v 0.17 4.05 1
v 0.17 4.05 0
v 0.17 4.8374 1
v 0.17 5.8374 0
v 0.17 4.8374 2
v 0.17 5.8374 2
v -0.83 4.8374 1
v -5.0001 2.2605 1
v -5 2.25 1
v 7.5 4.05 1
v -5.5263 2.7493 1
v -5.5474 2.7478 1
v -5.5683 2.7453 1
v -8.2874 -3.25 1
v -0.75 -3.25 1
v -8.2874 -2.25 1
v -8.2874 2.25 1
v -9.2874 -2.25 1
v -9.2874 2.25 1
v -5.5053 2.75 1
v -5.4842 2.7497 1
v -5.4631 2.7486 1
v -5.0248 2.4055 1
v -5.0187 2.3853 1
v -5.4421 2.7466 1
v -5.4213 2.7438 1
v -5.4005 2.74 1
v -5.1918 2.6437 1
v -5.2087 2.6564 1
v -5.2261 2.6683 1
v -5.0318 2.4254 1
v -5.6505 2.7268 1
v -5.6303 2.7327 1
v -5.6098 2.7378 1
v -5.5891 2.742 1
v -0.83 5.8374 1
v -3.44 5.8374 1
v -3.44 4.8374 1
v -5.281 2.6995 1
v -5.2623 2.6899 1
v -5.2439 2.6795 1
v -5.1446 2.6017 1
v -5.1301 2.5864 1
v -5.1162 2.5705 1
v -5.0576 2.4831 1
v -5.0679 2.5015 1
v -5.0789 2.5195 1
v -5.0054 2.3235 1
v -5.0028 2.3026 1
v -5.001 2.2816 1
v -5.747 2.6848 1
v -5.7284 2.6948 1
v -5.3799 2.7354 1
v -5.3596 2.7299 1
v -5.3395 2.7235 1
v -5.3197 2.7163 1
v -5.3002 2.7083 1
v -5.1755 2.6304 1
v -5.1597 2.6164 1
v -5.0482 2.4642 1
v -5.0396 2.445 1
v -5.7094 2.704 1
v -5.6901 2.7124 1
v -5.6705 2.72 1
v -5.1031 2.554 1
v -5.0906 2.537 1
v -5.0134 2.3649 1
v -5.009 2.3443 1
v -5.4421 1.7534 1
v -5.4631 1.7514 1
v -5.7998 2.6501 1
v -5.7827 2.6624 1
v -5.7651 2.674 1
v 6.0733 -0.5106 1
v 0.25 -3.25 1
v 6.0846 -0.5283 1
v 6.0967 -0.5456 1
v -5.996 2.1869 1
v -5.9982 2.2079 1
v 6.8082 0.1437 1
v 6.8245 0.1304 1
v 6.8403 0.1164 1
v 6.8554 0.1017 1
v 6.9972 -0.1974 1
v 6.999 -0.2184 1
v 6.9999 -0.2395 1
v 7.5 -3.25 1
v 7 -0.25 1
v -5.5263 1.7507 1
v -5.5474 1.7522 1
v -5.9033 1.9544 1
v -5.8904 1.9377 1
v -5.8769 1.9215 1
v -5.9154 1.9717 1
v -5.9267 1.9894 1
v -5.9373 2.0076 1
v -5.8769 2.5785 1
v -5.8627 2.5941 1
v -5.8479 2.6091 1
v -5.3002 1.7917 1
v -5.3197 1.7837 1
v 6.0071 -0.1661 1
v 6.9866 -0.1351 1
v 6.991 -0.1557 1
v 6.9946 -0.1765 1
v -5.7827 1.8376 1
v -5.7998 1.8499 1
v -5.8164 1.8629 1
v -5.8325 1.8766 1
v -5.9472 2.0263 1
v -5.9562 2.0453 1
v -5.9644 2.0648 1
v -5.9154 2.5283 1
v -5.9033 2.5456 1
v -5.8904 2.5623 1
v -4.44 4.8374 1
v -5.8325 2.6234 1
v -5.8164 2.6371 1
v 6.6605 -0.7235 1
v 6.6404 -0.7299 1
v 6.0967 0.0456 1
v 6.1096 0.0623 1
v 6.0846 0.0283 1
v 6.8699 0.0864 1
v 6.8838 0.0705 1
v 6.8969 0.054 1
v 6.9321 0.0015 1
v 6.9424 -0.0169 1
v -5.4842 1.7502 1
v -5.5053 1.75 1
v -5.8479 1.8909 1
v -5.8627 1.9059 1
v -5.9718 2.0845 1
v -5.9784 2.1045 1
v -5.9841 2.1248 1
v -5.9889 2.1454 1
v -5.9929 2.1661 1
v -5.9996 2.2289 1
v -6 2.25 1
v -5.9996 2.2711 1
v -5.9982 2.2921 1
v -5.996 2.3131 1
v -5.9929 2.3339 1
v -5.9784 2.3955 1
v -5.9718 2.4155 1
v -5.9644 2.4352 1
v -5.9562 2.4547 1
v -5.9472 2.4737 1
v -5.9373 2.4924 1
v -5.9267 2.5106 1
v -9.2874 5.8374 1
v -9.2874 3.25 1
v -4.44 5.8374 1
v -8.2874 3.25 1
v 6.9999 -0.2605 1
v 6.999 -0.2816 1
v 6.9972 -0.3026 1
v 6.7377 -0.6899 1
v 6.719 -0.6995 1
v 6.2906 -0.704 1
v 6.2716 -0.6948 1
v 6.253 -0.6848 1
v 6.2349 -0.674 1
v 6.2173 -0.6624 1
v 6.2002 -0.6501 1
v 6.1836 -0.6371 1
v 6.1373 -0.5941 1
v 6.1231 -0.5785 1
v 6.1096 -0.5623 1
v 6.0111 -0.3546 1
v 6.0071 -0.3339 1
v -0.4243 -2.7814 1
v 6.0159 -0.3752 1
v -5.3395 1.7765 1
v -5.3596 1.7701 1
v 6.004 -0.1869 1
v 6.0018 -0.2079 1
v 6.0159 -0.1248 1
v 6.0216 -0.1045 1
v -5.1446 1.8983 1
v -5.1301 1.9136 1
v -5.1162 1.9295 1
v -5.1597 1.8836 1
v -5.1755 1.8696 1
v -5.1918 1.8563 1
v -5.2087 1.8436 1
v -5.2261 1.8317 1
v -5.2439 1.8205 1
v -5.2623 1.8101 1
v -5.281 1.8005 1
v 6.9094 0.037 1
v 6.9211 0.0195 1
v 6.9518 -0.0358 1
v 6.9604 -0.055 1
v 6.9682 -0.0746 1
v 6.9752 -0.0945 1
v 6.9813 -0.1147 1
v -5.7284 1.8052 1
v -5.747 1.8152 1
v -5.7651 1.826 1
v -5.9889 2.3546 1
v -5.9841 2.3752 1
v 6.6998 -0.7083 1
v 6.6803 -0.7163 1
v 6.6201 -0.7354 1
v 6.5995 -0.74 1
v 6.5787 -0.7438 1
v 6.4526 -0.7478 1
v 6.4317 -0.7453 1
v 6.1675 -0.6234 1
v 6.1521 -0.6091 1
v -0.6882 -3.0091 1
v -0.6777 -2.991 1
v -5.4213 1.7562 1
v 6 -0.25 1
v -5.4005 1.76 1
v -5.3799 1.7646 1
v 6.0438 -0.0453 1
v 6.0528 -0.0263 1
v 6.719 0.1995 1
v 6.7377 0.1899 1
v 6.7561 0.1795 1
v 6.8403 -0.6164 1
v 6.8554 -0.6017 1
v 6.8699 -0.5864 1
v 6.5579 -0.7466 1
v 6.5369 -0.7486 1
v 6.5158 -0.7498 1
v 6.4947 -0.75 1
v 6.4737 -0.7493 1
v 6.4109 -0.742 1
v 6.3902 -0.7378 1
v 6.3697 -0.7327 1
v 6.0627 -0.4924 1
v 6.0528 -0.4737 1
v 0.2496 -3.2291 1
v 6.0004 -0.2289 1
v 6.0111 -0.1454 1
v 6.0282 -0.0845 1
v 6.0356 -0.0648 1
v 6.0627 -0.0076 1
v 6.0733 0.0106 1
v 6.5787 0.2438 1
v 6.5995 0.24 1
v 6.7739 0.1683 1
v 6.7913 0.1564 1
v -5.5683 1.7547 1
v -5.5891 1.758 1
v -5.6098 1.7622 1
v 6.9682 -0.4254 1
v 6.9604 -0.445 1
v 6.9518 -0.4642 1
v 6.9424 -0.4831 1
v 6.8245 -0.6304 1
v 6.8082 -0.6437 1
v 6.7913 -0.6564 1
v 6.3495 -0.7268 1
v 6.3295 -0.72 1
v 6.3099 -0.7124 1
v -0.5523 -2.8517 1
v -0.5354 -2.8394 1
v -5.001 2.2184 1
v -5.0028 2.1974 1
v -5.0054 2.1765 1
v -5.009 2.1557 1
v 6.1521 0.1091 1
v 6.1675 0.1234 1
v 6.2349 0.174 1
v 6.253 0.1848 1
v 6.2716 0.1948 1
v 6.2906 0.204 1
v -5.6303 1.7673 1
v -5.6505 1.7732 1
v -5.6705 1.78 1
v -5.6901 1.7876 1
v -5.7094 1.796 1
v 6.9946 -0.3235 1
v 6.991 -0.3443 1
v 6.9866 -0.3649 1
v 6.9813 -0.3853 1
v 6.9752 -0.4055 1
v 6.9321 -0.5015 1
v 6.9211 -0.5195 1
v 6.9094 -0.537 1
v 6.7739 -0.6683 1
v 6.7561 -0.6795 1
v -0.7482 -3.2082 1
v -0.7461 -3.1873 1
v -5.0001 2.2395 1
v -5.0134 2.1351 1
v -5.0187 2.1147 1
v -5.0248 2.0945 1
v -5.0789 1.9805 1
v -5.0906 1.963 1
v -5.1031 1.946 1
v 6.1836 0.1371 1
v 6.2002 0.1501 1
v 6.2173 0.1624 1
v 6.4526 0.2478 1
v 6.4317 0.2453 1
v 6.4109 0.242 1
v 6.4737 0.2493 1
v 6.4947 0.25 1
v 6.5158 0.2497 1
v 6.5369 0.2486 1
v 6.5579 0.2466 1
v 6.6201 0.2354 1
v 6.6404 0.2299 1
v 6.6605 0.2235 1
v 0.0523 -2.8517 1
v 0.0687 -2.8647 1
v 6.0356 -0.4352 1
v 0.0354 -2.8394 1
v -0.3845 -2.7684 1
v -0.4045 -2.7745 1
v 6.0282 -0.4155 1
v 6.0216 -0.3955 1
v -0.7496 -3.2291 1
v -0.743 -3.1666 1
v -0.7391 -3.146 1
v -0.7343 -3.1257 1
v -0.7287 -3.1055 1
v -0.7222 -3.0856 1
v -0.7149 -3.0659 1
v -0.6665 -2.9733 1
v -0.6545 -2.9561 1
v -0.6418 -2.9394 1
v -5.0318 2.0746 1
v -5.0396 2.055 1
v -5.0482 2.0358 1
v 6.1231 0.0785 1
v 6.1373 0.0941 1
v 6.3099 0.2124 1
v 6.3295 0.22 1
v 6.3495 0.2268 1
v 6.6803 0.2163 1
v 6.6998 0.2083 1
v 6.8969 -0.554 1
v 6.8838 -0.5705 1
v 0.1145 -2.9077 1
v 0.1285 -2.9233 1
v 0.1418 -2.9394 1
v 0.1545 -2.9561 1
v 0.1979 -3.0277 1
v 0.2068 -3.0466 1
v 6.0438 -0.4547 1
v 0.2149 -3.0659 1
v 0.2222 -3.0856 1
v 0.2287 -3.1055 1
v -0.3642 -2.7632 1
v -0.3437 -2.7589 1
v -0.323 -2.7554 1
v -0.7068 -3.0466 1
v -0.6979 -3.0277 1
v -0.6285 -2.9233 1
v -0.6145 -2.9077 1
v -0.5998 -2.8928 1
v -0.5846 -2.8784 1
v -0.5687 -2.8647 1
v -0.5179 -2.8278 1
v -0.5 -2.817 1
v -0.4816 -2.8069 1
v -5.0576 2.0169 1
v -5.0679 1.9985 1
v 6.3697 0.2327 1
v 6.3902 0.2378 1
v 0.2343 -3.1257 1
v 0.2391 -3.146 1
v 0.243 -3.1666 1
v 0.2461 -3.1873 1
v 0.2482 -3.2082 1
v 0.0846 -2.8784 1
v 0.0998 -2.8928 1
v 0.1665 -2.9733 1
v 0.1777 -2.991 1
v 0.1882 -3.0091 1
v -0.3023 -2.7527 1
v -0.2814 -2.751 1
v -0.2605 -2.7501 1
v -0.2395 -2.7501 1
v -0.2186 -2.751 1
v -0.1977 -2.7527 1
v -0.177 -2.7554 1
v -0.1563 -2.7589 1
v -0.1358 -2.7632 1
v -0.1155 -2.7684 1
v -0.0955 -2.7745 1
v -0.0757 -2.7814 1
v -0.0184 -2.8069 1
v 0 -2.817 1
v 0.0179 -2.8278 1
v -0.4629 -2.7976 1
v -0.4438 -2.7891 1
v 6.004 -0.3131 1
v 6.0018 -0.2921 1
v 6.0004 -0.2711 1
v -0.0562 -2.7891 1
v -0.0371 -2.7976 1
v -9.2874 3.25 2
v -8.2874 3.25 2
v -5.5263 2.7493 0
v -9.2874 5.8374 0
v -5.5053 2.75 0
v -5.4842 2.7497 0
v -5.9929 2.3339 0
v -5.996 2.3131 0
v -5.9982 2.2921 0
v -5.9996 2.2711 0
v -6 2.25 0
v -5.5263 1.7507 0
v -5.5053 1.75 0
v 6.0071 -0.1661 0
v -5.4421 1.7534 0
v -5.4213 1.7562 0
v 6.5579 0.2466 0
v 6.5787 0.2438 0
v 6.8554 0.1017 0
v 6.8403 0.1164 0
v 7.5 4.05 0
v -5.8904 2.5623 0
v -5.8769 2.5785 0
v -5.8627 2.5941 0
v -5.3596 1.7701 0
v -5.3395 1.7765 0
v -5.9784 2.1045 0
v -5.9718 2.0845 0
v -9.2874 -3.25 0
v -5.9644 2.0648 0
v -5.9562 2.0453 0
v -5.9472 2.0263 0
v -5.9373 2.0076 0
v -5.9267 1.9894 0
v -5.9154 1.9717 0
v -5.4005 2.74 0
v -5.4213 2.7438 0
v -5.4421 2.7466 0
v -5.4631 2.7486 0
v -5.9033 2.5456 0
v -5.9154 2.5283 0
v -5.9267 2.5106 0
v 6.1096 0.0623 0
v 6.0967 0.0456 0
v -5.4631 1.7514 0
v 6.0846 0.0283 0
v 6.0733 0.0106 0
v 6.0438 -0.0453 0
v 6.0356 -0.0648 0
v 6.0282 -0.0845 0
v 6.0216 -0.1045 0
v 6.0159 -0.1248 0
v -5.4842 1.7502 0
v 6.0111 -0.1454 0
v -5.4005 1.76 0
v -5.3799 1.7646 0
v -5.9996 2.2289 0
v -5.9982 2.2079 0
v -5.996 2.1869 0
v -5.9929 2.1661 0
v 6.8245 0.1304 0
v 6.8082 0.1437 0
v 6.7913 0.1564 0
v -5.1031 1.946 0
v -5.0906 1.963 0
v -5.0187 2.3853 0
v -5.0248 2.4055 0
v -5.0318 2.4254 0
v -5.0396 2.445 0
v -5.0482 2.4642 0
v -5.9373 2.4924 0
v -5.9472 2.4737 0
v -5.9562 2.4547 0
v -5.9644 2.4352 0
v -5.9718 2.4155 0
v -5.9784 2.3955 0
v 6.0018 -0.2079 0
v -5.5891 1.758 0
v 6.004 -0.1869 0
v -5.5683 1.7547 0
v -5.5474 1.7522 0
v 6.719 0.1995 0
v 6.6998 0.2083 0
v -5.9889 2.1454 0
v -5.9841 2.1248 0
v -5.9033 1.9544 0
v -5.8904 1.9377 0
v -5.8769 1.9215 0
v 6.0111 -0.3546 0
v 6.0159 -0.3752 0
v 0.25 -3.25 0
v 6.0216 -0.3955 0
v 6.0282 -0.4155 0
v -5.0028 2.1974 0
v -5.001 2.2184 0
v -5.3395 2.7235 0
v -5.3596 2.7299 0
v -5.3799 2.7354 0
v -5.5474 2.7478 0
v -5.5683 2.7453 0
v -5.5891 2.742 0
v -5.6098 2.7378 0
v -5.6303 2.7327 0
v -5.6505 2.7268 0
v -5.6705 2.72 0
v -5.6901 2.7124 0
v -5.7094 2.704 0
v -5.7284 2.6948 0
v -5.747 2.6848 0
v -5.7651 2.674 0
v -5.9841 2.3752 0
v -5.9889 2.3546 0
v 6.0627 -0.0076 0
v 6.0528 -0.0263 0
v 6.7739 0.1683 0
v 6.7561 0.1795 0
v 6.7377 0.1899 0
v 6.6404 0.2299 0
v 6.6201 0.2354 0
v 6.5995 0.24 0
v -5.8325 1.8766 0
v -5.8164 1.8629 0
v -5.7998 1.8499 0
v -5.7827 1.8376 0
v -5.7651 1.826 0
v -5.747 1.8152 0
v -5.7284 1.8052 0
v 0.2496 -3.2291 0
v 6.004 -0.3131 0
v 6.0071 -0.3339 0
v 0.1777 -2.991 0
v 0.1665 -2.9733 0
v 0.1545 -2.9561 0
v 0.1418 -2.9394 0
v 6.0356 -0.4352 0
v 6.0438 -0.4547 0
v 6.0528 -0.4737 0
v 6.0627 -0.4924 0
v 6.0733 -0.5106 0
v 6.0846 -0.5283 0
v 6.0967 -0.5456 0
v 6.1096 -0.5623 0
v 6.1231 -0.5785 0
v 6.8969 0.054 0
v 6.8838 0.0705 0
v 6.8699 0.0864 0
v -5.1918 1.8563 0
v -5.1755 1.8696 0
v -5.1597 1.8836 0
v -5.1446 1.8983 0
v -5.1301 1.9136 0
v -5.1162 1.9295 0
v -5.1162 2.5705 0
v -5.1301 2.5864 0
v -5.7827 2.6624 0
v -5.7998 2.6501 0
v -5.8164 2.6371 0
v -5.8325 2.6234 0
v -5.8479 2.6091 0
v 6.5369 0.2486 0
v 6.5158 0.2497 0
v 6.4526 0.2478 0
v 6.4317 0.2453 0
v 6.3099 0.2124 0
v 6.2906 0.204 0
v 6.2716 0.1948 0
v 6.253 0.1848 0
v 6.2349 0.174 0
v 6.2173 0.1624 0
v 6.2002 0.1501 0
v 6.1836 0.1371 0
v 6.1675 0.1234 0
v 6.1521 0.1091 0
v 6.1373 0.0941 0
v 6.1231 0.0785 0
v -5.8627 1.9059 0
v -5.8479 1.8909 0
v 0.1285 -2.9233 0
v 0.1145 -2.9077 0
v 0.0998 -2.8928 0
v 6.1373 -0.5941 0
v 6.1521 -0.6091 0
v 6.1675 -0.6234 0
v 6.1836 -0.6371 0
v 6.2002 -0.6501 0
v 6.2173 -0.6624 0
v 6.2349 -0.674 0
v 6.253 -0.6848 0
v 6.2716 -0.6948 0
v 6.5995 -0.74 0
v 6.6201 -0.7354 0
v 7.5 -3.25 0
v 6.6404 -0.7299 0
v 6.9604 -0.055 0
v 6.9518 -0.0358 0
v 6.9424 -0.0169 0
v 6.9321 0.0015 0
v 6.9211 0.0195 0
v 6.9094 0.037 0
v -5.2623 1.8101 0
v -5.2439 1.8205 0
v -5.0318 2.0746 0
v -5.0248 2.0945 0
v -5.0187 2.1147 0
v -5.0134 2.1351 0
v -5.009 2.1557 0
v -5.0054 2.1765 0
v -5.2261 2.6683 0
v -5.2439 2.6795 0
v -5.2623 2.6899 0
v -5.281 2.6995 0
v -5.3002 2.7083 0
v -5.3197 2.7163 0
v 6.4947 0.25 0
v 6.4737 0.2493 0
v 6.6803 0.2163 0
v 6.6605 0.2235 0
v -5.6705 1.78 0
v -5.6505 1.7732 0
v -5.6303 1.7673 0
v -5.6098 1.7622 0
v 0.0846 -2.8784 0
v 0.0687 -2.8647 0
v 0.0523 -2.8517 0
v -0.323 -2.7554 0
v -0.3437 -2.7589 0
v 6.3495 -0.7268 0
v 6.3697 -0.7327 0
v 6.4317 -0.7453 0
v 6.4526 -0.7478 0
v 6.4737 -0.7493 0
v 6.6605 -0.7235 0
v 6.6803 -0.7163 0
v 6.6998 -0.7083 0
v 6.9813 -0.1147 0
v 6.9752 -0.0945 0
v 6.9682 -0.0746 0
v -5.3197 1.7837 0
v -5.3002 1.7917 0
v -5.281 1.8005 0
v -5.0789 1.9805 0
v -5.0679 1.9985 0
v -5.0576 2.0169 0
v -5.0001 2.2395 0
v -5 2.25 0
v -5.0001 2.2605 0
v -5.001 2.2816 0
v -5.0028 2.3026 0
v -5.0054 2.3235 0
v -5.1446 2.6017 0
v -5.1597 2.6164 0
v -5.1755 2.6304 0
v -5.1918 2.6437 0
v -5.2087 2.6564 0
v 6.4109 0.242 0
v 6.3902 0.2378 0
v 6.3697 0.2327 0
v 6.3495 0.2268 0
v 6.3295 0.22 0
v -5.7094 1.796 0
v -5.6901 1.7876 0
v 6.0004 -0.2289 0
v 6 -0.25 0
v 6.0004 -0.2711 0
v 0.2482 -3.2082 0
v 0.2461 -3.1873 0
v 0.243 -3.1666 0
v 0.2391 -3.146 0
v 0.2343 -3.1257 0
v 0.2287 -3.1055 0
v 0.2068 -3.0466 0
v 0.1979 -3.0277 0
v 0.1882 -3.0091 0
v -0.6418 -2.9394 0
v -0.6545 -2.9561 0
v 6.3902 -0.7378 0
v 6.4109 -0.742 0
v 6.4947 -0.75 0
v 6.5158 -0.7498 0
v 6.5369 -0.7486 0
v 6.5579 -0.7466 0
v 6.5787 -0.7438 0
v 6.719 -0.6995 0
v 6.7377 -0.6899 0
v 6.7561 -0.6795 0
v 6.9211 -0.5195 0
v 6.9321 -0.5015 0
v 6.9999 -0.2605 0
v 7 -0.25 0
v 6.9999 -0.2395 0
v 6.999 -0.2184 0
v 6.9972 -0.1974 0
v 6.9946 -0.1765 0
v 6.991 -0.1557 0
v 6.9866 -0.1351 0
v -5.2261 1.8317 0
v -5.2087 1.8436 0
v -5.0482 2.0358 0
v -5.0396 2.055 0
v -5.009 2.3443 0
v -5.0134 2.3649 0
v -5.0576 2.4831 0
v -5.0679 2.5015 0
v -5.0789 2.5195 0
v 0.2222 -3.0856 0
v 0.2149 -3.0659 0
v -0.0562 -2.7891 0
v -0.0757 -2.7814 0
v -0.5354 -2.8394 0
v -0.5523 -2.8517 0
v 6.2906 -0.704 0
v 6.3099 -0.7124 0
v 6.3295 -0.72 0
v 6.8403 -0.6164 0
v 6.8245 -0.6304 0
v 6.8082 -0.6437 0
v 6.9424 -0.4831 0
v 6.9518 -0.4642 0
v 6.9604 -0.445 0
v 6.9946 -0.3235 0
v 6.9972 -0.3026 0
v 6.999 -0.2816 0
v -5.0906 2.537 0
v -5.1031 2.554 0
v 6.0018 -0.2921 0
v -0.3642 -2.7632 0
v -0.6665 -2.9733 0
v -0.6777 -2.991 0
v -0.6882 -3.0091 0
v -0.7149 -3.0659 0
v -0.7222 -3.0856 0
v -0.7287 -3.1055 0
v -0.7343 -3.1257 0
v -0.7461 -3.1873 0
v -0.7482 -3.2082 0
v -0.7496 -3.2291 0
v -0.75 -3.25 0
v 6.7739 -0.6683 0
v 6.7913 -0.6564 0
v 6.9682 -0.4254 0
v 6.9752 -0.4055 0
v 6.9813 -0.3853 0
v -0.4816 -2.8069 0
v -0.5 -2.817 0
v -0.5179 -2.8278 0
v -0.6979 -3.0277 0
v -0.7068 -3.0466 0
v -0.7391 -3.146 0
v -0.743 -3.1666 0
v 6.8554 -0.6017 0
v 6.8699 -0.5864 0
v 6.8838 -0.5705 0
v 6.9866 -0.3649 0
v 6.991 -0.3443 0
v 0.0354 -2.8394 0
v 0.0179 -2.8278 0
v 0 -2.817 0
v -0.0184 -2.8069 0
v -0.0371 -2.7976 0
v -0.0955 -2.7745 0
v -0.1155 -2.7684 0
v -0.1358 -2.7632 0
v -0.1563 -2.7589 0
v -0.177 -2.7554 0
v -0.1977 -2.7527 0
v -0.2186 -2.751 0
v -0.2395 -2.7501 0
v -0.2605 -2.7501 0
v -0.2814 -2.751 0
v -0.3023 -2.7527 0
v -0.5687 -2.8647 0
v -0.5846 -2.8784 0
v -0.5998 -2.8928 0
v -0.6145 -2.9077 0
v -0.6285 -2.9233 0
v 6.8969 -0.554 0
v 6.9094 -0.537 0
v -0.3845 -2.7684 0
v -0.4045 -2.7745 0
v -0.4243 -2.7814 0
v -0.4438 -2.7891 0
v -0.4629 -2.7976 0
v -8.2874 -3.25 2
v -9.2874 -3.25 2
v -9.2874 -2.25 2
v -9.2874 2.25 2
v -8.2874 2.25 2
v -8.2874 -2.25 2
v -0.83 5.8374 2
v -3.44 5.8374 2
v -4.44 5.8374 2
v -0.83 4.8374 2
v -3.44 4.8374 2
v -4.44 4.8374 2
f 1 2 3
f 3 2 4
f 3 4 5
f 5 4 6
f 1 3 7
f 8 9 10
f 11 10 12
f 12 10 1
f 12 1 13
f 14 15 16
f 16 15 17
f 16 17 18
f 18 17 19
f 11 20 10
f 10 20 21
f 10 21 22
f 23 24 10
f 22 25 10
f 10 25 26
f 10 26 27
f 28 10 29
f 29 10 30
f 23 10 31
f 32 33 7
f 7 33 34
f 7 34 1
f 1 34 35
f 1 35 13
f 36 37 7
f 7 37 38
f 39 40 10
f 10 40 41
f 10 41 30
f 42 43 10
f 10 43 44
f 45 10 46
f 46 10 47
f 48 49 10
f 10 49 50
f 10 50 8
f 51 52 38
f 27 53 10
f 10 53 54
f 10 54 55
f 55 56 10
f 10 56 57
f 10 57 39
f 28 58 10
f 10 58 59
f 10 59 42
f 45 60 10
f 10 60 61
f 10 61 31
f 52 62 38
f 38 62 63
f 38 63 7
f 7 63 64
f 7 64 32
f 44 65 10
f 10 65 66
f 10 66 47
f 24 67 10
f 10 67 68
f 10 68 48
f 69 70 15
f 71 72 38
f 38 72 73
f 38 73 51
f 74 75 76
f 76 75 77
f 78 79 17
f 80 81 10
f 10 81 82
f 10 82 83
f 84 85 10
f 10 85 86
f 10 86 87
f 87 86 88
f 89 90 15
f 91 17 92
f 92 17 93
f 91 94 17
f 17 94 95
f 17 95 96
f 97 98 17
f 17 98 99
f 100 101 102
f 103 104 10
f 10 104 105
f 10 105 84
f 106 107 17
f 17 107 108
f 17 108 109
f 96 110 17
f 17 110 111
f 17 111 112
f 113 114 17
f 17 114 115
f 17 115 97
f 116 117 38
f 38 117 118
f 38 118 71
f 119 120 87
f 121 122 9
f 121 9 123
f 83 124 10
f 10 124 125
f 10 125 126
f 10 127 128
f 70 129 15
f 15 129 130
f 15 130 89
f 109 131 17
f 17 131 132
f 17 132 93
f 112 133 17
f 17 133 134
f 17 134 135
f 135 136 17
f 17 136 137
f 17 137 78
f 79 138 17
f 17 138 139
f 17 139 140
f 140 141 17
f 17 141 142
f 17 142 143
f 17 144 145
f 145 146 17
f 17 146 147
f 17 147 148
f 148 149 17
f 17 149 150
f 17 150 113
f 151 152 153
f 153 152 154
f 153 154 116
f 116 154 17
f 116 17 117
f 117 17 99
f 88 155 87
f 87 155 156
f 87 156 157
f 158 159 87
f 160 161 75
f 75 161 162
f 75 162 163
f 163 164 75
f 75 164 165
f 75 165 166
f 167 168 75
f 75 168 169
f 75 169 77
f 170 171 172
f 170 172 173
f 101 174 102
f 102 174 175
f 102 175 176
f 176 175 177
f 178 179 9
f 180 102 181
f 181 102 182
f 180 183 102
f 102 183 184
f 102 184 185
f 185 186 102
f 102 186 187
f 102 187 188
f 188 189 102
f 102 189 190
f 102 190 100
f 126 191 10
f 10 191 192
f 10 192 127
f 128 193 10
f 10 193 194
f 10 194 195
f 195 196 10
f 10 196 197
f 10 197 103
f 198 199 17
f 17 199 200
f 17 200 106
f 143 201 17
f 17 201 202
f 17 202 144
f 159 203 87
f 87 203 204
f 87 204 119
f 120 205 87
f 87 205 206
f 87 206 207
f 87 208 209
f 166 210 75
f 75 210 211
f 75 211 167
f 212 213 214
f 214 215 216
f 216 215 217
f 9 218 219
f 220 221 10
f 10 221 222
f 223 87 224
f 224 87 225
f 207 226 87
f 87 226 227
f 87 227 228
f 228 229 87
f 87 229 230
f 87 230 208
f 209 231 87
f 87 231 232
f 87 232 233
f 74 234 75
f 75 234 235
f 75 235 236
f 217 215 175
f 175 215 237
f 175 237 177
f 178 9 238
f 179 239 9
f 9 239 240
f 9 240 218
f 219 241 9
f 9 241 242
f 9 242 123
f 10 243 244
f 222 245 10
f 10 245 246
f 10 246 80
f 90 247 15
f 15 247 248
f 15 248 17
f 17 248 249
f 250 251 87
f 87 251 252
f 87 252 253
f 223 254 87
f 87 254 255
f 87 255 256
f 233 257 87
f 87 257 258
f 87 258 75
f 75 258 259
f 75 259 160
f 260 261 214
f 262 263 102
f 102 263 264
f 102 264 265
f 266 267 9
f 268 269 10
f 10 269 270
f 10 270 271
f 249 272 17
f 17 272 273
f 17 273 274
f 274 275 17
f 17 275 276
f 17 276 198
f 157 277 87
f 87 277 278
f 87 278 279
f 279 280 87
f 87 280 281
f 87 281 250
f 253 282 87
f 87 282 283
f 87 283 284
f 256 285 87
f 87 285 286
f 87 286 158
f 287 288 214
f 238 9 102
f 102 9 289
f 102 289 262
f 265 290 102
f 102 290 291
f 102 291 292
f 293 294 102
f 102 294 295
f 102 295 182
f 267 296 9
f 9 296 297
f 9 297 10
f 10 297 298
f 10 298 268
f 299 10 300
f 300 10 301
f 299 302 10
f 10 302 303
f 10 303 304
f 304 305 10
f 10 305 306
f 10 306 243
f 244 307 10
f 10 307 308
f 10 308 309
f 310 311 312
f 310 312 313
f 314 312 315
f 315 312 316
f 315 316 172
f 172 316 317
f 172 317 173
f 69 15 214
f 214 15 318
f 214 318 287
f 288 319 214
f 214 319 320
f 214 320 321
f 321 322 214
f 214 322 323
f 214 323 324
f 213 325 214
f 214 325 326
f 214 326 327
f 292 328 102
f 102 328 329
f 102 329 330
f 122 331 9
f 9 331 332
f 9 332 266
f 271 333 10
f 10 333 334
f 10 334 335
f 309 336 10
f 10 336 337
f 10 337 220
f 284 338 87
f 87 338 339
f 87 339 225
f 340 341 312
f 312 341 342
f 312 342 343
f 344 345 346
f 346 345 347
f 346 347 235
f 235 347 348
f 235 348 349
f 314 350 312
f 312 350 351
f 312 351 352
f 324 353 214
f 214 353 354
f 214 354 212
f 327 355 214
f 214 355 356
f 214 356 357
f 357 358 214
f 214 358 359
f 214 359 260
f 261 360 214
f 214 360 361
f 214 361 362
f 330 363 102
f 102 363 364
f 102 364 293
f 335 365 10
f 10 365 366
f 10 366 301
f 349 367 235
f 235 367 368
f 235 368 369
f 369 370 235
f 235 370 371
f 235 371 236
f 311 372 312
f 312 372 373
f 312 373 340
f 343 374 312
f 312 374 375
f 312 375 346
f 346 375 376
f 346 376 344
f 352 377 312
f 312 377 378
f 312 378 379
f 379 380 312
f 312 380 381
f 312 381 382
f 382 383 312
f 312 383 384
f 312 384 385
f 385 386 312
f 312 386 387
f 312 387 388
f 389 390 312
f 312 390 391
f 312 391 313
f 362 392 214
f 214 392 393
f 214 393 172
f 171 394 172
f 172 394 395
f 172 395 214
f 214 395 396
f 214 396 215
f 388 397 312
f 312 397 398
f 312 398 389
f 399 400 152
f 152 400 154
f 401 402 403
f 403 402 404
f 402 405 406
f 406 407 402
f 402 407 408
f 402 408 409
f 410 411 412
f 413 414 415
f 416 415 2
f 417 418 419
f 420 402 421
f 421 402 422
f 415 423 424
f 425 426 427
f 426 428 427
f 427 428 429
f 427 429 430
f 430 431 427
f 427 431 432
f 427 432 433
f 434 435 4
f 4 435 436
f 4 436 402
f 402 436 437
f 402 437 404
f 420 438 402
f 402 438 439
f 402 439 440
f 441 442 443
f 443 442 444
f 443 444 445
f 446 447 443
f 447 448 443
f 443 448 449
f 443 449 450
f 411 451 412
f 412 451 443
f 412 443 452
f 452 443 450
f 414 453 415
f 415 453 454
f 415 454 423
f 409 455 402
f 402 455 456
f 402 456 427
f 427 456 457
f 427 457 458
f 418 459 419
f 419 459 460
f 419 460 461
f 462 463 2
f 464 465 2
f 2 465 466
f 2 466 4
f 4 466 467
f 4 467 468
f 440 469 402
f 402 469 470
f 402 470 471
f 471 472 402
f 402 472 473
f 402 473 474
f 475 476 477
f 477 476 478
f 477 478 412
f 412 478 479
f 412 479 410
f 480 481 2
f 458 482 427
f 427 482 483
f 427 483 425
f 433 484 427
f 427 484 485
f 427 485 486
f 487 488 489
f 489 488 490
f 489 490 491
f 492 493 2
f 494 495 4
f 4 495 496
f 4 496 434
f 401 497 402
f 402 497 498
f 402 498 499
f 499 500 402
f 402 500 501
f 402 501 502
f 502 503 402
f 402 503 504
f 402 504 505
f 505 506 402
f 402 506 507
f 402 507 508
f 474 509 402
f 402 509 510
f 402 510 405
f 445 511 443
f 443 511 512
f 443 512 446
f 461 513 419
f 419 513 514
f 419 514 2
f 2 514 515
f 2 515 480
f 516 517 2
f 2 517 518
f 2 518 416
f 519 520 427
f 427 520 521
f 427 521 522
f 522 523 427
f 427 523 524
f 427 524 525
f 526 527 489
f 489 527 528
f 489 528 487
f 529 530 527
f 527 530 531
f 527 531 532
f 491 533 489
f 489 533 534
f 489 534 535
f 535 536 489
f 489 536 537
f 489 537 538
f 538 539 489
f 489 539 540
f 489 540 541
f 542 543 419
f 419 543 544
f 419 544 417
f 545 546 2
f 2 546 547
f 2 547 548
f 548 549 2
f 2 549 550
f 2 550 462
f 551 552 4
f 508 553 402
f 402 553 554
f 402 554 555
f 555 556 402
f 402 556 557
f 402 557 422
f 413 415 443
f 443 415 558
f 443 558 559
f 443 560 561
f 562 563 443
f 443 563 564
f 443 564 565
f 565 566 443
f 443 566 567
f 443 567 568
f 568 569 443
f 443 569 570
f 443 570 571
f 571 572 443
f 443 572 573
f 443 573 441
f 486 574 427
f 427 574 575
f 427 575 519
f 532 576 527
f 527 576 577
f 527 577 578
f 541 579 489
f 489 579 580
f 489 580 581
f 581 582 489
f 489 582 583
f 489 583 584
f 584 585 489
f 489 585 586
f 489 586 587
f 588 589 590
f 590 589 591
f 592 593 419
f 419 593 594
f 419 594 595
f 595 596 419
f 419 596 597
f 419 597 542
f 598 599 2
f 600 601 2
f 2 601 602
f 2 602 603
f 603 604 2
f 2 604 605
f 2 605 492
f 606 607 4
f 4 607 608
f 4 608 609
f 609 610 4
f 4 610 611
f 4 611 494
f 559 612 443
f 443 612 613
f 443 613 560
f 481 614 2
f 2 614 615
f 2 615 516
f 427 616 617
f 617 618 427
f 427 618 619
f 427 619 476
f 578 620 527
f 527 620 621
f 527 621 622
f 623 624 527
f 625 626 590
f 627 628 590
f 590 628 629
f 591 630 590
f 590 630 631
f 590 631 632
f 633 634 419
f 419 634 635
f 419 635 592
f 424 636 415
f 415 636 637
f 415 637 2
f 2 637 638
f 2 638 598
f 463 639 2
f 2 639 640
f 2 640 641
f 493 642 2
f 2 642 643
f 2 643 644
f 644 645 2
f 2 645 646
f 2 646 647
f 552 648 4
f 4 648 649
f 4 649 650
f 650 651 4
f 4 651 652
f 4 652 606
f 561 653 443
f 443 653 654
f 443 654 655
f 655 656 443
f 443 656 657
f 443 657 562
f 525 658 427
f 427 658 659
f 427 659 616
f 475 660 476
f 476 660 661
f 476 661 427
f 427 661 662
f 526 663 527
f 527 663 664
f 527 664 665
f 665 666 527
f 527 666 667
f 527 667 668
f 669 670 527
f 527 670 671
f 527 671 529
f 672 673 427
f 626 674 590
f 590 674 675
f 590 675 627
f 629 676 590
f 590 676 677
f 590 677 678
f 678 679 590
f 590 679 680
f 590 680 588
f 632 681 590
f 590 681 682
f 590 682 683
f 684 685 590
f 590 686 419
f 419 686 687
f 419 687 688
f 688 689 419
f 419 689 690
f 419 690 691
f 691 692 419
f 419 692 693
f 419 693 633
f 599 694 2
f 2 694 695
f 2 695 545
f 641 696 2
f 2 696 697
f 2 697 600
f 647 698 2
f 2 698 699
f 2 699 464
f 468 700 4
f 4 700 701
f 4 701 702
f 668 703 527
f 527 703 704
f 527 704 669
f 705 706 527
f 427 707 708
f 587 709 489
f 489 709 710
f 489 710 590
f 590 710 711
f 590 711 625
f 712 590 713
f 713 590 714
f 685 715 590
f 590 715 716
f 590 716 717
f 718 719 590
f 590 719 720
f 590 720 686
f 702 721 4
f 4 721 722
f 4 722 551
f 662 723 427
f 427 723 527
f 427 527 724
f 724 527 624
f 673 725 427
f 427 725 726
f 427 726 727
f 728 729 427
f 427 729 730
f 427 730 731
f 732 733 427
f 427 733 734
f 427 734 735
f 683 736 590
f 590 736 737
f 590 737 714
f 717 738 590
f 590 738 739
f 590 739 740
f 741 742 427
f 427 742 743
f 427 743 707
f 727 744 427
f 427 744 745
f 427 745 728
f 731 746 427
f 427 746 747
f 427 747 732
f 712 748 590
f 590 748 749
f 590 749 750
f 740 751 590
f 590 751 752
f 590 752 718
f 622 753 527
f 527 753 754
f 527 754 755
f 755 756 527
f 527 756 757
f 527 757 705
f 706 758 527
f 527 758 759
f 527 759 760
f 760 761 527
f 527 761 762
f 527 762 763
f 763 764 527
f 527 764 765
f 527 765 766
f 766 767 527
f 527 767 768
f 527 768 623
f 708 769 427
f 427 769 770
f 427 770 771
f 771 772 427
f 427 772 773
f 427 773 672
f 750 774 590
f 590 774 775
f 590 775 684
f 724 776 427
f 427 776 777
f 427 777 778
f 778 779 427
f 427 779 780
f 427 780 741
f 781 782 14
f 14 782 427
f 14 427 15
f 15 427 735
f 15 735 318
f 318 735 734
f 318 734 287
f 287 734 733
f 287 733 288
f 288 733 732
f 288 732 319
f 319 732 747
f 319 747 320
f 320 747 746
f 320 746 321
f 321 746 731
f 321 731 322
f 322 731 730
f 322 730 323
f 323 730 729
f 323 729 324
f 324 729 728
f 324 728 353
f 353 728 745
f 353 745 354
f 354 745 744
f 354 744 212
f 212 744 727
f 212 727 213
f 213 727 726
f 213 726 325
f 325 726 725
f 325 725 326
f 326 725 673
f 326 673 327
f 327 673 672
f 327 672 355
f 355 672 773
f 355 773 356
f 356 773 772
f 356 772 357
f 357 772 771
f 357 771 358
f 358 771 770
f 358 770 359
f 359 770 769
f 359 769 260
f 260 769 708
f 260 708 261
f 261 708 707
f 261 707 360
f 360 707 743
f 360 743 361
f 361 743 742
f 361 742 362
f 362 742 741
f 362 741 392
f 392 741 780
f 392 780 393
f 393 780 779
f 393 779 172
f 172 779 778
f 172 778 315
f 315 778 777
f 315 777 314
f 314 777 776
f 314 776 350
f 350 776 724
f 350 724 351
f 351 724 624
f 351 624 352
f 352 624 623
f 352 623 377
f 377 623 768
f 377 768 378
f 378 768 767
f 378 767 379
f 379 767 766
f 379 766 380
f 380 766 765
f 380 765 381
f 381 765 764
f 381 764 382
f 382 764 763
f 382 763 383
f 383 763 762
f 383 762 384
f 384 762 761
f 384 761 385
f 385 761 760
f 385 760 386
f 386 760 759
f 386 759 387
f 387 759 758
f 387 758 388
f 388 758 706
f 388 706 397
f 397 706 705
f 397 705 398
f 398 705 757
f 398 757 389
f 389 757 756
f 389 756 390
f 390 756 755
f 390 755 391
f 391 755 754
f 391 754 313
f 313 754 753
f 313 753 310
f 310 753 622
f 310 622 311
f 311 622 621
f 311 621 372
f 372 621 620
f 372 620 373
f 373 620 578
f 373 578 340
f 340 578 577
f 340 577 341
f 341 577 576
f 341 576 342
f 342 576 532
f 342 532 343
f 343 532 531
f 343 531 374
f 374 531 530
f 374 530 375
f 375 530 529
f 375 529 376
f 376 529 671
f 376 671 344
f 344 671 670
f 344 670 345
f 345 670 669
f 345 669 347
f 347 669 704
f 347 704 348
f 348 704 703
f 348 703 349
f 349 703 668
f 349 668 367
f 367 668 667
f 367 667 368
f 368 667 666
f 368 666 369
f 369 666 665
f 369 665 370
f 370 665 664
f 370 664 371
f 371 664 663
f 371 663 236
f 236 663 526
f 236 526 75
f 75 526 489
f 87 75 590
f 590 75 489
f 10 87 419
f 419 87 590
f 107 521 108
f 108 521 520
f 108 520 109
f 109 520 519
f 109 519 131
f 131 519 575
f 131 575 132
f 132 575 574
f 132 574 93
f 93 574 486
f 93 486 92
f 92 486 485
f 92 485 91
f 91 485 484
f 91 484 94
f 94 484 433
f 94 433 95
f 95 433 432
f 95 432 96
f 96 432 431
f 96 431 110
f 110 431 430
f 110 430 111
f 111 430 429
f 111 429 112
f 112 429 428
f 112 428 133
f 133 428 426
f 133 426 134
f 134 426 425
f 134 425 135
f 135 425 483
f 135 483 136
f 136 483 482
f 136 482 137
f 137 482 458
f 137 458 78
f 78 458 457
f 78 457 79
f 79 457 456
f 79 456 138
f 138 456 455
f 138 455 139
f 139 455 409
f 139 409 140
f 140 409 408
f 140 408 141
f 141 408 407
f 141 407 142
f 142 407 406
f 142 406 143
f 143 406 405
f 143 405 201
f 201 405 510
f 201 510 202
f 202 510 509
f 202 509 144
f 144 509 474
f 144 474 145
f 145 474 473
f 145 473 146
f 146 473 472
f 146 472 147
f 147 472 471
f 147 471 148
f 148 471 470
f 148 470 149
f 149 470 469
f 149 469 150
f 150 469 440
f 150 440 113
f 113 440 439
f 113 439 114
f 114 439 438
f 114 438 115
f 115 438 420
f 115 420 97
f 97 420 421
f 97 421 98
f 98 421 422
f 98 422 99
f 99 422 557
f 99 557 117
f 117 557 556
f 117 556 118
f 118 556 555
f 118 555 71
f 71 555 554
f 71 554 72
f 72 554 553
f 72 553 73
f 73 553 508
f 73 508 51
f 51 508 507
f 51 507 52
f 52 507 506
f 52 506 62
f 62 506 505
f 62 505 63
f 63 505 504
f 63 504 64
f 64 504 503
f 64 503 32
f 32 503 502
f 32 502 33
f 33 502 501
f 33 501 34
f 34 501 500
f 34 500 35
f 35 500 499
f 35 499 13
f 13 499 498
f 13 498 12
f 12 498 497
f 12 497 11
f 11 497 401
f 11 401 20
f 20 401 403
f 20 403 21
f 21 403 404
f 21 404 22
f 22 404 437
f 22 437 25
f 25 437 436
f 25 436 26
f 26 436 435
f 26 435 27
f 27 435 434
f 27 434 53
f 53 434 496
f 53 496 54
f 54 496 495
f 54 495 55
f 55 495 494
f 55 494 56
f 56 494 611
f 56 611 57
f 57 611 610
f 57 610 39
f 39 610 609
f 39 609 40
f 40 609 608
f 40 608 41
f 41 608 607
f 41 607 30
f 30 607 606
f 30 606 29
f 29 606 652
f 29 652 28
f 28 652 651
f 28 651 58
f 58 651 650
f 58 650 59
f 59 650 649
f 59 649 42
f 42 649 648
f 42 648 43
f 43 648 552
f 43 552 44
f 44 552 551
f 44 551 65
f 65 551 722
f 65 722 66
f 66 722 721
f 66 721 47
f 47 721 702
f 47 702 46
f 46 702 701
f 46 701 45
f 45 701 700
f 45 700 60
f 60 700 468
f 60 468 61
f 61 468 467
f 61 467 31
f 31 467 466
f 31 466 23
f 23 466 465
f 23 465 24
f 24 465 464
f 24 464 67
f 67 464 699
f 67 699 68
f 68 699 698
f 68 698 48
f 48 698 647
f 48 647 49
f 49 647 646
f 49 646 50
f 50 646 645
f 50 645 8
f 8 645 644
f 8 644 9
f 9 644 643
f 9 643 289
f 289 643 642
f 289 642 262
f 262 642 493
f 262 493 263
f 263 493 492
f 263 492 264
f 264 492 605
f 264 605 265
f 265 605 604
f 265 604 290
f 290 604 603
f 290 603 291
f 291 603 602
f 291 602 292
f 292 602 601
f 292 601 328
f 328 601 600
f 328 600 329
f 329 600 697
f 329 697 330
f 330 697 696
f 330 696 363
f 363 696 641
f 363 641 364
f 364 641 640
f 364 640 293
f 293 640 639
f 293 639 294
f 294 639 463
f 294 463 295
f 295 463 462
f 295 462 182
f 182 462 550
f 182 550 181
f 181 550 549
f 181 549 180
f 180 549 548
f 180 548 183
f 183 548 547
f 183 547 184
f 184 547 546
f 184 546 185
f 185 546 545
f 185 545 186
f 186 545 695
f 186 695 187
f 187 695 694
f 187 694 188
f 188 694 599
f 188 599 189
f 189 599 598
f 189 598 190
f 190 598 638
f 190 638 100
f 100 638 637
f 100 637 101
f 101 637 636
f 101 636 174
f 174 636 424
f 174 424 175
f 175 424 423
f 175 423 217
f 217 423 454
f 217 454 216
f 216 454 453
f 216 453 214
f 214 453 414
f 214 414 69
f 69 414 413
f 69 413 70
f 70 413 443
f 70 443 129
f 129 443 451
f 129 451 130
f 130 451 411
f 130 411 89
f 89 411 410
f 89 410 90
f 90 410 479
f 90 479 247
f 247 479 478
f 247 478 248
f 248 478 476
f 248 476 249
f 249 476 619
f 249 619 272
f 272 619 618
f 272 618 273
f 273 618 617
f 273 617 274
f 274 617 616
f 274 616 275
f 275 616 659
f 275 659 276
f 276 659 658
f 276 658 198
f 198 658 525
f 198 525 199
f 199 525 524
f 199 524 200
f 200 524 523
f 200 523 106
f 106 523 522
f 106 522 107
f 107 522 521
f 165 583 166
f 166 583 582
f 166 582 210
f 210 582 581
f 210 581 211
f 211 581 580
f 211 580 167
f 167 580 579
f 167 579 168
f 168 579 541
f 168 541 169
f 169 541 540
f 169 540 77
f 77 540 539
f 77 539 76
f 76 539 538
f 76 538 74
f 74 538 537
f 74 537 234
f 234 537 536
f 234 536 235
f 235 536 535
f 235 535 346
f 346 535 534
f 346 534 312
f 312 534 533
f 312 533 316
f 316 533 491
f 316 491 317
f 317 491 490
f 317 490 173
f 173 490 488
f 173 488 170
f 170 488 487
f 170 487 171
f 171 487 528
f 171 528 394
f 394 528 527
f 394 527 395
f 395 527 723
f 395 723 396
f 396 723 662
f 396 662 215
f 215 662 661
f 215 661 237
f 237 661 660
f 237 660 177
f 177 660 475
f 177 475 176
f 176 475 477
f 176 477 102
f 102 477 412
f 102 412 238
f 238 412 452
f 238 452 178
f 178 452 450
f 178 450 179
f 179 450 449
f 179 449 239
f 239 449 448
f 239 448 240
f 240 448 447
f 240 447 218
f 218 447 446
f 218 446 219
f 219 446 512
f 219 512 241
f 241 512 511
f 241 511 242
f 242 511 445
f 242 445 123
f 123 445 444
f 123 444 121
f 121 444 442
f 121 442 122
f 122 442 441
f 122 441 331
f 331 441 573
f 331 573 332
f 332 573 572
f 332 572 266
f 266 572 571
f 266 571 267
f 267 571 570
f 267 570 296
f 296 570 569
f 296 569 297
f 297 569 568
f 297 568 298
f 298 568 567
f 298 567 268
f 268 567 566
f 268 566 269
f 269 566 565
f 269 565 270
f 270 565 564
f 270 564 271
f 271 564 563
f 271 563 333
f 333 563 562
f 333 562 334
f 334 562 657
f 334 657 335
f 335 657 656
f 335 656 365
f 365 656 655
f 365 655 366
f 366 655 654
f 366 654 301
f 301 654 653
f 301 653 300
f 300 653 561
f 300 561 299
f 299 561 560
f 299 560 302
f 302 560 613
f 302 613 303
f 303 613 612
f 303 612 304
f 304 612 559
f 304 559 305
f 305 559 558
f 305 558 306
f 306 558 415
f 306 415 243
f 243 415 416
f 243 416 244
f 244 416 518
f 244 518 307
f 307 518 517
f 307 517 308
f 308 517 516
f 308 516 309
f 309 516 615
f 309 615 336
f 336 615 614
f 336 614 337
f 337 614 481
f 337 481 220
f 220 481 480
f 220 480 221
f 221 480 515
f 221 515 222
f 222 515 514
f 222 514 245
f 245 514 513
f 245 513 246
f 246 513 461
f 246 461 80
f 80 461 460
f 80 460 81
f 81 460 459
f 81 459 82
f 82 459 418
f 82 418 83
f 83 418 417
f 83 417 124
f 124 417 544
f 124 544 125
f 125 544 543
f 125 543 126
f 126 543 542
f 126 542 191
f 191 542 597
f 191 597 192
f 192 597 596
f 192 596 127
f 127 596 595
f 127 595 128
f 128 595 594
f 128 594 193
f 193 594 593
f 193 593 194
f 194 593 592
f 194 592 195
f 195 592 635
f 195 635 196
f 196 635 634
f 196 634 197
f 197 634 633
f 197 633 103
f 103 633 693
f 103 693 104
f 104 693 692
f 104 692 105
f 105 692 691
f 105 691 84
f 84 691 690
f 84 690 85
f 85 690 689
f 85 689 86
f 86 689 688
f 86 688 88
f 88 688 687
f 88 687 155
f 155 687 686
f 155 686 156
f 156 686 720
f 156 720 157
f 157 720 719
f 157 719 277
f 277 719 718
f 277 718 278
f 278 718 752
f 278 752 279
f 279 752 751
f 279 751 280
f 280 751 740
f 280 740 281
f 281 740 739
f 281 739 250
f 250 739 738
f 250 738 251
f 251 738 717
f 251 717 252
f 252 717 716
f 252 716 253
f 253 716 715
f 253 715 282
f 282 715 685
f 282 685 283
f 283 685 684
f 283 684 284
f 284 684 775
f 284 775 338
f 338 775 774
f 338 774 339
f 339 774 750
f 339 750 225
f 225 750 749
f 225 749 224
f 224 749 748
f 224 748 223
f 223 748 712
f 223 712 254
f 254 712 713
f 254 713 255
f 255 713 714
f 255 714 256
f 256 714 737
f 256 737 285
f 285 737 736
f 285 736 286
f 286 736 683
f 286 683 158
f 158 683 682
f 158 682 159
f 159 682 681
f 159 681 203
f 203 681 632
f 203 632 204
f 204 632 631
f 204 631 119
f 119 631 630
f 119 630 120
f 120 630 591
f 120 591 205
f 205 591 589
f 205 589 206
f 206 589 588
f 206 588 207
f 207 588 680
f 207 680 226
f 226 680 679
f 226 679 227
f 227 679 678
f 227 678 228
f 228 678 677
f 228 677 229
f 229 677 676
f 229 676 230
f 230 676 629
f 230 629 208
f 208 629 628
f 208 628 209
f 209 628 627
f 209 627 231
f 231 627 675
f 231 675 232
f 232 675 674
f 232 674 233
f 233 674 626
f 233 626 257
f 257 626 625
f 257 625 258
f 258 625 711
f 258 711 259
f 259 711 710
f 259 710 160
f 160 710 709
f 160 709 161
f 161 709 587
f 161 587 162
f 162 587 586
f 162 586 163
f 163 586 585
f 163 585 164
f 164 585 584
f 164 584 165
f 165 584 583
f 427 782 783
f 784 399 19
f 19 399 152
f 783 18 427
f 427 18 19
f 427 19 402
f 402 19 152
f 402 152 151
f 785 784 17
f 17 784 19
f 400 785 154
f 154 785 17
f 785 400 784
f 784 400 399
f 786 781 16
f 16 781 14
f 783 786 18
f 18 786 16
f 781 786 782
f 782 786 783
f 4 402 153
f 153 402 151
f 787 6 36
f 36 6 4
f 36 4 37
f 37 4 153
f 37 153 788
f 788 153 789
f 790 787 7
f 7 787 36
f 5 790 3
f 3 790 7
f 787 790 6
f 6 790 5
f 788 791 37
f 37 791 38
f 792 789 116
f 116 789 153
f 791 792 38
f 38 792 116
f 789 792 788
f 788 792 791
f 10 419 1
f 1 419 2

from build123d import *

# Parameters (mm, degrees)
SKETCH1_R             = 0.5
FRONT_FACE_EXT_DEPTH  = 1
SKETCH2_W             = 1
SKETCH2_H             = 6.5
LENGTH_EXTRUDE1_DEPTH = 1.7874
SKETCH3_W             = 1
SKETCH3_H             = 1
BOSS_EXTRUDE2_DEPTH   = 1
SKETCH4_W             = 9.4574
SKETCH4_H             = 1
HEIGHT_EXTRUDE3_DEPTH = 2.5874
SKETCH5_W             = 1
SKETCH5_H             = 1
BOSS_EXTRUDE4_DEPTH   = 1
SKETCH6_W             = 7.33
SKETCH6_H             = 1
BOSS_EXTRUDE5_DEPTH   = 0.8


with BuildPart() as part:
    # Sketch1 → Front Face Ext (new body)
    with BuildSketch(Plane.XY):
        with BuildLine():
            Line((-0.75, -3.25), (-7.5, -3.25))
            Line((-7.5, -3.25), (-7.5, 3.25))
            Line((-7.5, 3.25), (7.5, 3.25))
            Line((7.5, 3.25), (7.5, -3.25))
            Line((7.5, -3.25), (0.25, -3.25))
            ThreePointArc((0.25, -3.25), (-0.25, -2.75), (-0.75, -3.25))
        make_face()
        with Locations((-5.5, 2.25)):
            Circle(SKETCH1_R, mode=Mode.SUBTRACT)
        with Locations((6.5, -0.25)):
            Circle(SKETCH1_R, mode=Mode.SUBTRACT)
    extrude(amount=FRONT_FACE_EXT_DEPTH)

    # Sketch2 → Length-Extrude1 (add)
    with BuildSketch(Plane.ZY.offset(7.5)):
        with Locations((0.5, 0)):
            Rectangle(SKETCH2_W, SKETCH2_H)
    extrude(amount=LENGTH_EXTRUDE1_DEPTH)

    # Sketch3 → Boss-Extrude2 (add)
    with BuildSketch(Plane.XY.offset(1)):
        with Locations((-8.7874, 2.75)):
            Rectangle(SKETCH3_W, SKETCH3_H)
        with Locations((-8.7874, -2.75)):
            Rectangle(SKETCH3_W, SKETCH3_H)
    extrude(amount=BOSS_EXTRUDE2_DEPTH)

    # Sketch4 → Height-Extrude3 (add)
    with BuildSketch(Plane(origin=(0, 3.25, 0), x_dir=(1, 0, 0), z_dir=(0, 1, 0))):
        with Locations((-4.5587, -0.5)):
            Rectangle(SKETCH4_W, SKETCH4_H)
    extrude(amount=HEIGHT_EXTRUDE3_DEPTH)

    # Sketch5 → Boss-Extrude4 (add)
    with BuildSketch(Plane.XY.offset(1)):
        with Locations((-0.33, 5.3374)):
            Rectangle(SKETCH5_W, SKETCH5_H)
        with Locations((-3.94, 5.3374)):
            Rectangle(SKETCH5_W, SKETCH5_H)
    extrude(amount=BOSS_EXTRUDE4_DEPTH)

    # Sketch6 → Boss-Extrude5 (add)
    with BuildSketch(Plane(origin=(0, 3.25, 0), x_dir=(1, 0, 0), z_dir=(0, 1, 0))):
        with Locations((3.835, -0.5)):
            Rectangle(SKETCH6_W, SKETCH6_H)
    extrude(amount=BOSS_EXTRUDE5_DEPTH)


solid = part.part
